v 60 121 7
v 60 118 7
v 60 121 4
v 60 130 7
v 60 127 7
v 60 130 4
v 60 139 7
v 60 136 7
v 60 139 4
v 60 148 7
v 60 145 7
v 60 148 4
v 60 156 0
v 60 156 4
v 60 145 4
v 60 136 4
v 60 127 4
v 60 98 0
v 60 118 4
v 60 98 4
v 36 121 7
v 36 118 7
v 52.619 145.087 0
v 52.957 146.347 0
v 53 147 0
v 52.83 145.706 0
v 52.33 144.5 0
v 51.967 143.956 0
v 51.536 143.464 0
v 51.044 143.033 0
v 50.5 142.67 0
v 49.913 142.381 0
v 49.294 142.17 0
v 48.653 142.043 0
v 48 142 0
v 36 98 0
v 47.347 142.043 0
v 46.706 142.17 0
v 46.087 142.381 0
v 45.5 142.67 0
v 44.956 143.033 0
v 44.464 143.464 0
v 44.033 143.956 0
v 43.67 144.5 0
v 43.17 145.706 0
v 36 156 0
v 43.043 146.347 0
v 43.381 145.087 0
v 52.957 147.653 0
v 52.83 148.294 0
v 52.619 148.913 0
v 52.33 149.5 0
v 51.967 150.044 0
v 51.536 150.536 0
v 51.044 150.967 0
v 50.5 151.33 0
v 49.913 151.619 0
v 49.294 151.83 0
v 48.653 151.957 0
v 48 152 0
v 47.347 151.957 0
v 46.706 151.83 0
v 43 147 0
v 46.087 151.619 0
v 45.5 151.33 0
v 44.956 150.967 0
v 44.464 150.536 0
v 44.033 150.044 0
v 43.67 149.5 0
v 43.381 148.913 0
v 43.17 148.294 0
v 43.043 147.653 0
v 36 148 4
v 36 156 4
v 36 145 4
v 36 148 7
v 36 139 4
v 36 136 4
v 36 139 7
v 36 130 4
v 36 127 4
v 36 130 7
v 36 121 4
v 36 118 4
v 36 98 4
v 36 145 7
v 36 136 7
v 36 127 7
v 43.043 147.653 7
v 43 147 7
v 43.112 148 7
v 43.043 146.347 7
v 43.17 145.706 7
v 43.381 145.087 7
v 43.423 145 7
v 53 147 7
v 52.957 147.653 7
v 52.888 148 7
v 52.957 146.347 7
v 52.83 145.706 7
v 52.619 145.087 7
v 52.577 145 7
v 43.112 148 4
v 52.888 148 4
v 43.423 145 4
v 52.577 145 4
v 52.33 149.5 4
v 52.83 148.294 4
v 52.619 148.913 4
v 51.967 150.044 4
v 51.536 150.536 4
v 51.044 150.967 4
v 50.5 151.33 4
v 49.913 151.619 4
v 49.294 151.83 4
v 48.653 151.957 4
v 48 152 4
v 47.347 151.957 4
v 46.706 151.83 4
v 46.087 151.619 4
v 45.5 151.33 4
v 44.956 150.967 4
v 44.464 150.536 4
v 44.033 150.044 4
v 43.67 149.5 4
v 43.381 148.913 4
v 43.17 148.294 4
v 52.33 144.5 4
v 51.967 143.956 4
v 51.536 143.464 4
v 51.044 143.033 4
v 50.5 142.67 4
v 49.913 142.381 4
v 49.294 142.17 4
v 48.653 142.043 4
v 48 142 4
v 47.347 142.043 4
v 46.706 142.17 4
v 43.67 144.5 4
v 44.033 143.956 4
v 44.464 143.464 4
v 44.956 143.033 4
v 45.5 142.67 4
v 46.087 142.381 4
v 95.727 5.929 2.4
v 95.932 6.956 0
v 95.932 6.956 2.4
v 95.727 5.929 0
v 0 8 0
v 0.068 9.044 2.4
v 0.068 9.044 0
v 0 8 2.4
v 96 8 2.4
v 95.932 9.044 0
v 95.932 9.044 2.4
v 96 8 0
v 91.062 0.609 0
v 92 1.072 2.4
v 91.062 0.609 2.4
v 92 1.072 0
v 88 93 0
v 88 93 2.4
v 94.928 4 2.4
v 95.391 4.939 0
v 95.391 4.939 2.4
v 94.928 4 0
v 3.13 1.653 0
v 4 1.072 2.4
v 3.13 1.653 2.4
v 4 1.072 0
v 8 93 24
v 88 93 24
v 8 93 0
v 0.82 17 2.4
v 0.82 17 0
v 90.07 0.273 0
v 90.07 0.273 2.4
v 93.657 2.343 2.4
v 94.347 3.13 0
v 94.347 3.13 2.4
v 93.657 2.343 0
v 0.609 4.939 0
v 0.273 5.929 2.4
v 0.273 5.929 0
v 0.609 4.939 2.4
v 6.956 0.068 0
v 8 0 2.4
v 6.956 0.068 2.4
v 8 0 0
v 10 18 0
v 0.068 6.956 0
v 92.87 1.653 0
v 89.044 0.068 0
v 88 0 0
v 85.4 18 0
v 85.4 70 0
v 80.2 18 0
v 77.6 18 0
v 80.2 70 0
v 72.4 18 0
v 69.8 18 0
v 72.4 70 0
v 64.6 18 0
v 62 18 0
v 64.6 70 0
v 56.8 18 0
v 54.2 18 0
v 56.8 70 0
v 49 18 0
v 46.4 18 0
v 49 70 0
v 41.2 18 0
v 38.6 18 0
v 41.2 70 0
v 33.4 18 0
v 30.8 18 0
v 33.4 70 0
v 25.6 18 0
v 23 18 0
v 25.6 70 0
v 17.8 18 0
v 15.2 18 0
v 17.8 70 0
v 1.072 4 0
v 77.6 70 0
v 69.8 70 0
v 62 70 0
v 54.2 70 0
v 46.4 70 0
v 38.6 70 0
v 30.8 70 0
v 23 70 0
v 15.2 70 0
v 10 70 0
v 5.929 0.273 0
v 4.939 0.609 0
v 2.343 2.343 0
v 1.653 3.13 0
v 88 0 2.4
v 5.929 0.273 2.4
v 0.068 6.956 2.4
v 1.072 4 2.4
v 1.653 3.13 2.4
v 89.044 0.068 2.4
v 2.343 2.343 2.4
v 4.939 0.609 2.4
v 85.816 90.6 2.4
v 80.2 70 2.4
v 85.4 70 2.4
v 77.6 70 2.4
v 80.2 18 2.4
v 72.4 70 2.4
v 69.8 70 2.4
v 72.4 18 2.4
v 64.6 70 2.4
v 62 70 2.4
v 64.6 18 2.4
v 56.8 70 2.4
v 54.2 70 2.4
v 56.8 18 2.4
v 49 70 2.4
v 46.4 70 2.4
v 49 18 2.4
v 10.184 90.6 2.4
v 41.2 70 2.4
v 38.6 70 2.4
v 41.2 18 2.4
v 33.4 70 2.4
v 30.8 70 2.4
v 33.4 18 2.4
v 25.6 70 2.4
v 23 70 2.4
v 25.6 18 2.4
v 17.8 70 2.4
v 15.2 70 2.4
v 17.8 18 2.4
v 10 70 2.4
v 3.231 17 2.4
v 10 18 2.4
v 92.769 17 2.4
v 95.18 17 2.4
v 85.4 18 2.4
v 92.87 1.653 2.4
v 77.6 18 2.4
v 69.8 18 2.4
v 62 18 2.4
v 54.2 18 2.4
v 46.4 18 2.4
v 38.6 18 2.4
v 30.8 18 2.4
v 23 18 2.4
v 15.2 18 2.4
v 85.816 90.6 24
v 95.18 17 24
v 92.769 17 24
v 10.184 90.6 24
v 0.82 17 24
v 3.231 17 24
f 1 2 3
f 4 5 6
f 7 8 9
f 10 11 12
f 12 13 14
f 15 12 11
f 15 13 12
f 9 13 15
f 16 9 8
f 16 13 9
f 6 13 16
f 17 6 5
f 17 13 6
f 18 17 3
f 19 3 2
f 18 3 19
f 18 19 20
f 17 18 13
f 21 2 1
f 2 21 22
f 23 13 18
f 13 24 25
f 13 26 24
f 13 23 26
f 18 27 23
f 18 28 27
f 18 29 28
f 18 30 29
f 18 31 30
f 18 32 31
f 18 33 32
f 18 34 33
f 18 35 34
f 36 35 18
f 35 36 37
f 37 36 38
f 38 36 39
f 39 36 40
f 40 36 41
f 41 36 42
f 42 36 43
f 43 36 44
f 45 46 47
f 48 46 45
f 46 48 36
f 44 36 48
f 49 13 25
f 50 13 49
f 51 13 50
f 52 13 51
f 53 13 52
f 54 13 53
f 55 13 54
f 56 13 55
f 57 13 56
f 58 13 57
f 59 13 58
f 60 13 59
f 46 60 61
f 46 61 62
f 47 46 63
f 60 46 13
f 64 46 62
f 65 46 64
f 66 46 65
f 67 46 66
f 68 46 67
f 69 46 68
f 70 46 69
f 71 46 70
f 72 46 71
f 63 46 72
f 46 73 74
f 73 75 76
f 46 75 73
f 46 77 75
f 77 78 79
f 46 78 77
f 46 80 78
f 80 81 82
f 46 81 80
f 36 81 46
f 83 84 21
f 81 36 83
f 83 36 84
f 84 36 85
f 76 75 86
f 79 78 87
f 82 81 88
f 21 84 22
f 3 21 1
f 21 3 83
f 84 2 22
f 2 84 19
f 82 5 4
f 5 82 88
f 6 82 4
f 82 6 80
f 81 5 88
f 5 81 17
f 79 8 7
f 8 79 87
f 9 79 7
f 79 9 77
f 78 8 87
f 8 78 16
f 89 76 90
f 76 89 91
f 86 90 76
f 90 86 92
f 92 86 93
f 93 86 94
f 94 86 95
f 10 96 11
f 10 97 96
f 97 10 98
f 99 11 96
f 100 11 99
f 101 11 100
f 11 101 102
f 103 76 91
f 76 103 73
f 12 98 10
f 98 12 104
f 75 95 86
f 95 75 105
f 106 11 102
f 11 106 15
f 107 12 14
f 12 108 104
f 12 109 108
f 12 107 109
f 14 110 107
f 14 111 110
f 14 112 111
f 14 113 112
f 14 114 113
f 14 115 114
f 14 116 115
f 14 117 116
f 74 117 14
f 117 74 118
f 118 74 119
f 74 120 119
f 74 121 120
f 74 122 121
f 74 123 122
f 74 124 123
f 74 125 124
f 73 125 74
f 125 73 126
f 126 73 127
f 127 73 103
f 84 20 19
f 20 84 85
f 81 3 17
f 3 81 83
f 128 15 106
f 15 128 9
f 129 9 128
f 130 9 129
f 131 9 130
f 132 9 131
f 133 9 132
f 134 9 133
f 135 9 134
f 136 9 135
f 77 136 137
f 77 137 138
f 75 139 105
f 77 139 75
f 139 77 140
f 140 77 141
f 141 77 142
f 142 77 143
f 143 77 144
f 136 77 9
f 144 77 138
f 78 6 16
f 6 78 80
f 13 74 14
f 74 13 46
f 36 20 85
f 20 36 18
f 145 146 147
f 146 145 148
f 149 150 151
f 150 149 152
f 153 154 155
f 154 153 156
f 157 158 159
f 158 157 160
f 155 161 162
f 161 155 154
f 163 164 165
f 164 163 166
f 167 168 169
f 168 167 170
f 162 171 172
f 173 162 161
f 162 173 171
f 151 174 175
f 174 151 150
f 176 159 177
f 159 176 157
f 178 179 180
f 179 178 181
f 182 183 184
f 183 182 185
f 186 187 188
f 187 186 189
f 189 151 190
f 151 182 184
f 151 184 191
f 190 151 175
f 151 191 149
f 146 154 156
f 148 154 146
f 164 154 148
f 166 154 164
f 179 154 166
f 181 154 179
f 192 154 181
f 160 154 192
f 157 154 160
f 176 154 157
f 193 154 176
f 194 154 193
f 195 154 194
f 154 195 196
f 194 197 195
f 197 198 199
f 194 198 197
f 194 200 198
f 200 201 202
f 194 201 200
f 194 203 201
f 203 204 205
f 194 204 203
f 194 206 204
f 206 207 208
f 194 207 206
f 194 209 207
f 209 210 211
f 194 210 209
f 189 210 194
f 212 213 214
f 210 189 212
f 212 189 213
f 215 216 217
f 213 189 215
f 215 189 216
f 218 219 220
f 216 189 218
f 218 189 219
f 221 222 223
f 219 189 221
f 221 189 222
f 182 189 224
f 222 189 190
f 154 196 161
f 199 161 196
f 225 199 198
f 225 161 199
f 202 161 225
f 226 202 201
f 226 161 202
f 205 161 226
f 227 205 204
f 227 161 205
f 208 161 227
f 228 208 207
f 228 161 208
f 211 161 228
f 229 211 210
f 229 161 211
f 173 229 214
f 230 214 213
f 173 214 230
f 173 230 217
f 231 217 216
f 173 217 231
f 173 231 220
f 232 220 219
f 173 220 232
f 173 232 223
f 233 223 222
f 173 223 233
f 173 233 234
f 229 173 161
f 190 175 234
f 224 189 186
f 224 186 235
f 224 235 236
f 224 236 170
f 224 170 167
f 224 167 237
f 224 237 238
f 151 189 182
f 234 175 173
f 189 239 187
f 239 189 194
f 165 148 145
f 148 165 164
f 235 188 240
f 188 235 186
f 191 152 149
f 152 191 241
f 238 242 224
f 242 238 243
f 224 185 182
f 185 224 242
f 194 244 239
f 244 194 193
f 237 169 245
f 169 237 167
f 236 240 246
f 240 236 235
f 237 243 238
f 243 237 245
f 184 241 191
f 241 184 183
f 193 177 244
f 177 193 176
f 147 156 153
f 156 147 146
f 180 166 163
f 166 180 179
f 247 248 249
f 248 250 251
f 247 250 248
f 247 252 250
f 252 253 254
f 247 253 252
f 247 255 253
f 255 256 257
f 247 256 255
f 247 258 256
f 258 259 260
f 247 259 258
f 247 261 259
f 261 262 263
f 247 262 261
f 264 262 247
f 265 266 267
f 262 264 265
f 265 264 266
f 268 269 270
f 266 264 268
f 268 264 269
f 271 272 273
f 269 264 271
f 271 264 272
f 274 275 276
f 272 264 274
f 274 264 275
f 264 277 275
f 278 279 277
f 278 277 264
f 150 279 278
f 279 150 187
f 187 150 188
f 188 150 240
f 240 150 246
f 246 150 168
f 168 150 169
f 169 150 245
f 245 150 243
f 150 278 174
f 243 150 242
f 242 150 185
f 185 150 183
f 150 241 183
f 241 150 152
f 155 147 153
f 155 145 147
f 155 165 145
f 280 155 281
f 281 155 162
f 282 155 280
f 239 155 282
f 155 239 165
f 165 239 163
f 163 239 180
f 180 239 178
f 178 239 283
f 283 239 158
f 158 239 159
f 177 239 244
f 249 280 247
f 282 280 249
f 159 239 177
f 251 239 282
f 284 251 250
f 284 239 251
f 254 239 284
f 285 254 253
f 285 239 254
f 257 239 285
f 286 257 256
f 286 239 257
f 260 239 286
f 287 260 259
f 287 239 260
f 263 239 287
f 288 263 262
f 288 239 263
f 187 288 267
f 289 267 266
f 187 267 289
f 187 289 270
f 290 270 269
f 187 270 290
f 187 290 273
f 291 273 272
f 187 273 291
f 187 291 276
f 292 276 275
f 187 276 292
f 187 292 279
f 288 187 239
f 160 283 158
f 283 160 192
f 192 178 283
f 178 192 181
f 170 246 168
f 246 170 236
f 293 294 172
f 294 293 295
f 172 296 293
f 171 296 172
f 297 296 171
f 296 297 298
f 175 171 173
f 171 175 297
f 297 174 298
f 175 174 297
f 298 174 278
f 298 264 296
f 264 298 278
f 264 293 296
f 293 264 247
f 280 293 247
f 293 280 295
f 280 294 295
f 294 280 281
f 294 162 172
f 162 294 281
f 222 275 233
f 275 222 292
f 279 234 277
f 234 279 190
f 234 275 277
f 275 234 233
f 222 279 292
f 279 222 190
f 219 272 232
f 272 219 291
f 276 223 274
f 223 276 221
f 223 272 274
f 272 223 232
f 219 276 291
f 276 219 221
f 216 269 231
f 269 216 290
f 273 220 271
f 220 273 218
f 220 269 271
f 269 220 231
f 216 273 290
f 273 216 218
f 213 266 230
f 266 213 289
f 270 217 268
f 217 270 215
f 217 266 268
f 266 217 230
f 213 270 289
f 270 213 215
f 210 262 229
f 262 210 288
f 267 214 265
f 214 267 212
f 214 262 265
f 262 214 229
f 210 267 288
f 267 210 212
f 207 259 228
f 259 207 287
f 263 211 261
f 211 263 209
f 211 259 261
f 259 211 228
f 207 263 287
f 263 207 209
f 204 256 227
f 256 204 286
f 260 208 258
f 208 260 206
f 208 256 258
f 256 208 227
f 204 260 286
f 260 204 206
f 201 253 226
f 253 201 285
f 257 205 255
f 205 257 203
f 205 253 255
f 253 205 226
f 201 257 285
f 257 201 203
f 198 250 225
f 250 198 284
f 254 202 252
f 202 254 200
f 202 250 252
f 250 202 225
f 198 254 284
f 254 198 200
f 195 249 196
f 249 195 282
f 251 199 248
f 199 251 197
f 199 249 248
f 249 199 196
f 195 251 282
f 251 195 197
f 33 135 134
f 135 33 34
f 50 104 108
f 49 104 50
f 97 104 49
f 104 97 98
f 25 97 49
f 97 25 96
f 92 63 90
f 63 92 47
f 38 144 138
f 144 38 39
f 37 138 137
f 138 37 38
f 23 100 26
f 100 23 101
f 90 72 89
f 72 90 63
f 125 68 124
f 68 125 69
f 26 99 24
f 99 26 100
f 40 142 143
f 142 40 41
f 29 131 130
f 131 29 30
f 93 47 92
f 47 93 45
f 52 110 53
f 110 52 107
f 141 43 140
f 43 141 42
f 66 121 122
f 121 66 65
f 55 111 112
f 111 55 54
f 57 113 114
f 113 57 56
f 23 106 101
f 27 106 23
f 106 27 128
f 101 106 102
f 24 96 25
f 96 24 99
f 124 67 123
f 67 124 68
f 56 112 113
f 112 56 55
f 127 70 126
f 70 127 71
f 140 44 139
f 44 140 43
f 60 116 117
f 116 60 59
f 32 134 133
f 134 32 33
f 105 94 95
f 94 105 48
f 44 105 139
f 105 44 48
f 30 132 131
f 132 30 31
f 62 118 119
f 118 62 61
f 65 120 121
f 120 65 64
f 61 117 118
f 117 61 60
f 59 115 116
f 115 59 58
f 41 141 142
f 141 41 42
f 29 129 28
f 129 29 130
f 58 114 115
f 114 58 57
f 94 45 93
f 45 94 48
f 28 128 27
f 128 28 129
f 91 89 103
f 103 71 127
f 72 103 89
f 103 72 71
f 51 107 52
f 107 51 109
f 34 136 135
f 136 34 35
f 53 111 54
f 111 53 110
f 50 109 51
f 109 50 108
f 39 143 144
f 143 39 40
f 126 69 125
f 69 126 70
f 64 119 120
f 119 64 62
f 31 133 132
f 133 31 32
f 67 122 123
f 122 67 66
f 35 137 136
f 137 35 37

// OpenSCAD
// Original litter scoop for clumping litter. Print flat (blade down), no supports; 0.2 layers, 4 walls.
blade_w = 96; blade_l = 100; wall_h = 24; t = 2.4;
slot_w = 5.2;       // clumping litter: 5-6 mm; use ~3.5 for fine/crystal litter
slot_l = 52; slot_pitch = slot_w + 2.6;
handle_l = 58; handle_w = 24; handle_t = 4;
$fn = 48;

module outline() {
    hull() {
        translate([8, 8]) circle(r = 8); translate([blade_w - 8, 8]) circle(r = 8);
        translate([8, blade_l - 8]) square(1); translate([blade_w - 9, blade_l - 8]) square(1);
    }
}

difference() {
    union() {
        linear_extrude(height = t) outline();
        // side + back walls
        linear_extrude(height = wall_h) difference() {
            outline();
            offset(delta = -t) outline();
            // open front edge so litter slides in
            translate([-1, -1]) square([blade_w + 2, 18]);
        }
        // handle (continues from the back edge)
        translate([blade_w / 2 - handle_w / 2, blade_l - 2, 0]) {
            cube([handle_w, handle_l, handle_t]);
            // ribbed grip
            for (y = [20 : 9 : handle_l - 6]) translate([0, y, 0]) cube([handle_w, 3, handle_t + 3]);
        }
    }
    // slots
    for (i = [0 : floor((blade_w - 20 - slot_w) / slot_pitch)])
        translate([10 + i * slot_pitch, 18, -1]) cube([slot_w, slot_l, t + 2]);
    // hang hole in handle
    translate([blade_w / 2, blade_l + handle_l - 2 - 9, -1]) cylinder(d = 10, h = 10);
}
